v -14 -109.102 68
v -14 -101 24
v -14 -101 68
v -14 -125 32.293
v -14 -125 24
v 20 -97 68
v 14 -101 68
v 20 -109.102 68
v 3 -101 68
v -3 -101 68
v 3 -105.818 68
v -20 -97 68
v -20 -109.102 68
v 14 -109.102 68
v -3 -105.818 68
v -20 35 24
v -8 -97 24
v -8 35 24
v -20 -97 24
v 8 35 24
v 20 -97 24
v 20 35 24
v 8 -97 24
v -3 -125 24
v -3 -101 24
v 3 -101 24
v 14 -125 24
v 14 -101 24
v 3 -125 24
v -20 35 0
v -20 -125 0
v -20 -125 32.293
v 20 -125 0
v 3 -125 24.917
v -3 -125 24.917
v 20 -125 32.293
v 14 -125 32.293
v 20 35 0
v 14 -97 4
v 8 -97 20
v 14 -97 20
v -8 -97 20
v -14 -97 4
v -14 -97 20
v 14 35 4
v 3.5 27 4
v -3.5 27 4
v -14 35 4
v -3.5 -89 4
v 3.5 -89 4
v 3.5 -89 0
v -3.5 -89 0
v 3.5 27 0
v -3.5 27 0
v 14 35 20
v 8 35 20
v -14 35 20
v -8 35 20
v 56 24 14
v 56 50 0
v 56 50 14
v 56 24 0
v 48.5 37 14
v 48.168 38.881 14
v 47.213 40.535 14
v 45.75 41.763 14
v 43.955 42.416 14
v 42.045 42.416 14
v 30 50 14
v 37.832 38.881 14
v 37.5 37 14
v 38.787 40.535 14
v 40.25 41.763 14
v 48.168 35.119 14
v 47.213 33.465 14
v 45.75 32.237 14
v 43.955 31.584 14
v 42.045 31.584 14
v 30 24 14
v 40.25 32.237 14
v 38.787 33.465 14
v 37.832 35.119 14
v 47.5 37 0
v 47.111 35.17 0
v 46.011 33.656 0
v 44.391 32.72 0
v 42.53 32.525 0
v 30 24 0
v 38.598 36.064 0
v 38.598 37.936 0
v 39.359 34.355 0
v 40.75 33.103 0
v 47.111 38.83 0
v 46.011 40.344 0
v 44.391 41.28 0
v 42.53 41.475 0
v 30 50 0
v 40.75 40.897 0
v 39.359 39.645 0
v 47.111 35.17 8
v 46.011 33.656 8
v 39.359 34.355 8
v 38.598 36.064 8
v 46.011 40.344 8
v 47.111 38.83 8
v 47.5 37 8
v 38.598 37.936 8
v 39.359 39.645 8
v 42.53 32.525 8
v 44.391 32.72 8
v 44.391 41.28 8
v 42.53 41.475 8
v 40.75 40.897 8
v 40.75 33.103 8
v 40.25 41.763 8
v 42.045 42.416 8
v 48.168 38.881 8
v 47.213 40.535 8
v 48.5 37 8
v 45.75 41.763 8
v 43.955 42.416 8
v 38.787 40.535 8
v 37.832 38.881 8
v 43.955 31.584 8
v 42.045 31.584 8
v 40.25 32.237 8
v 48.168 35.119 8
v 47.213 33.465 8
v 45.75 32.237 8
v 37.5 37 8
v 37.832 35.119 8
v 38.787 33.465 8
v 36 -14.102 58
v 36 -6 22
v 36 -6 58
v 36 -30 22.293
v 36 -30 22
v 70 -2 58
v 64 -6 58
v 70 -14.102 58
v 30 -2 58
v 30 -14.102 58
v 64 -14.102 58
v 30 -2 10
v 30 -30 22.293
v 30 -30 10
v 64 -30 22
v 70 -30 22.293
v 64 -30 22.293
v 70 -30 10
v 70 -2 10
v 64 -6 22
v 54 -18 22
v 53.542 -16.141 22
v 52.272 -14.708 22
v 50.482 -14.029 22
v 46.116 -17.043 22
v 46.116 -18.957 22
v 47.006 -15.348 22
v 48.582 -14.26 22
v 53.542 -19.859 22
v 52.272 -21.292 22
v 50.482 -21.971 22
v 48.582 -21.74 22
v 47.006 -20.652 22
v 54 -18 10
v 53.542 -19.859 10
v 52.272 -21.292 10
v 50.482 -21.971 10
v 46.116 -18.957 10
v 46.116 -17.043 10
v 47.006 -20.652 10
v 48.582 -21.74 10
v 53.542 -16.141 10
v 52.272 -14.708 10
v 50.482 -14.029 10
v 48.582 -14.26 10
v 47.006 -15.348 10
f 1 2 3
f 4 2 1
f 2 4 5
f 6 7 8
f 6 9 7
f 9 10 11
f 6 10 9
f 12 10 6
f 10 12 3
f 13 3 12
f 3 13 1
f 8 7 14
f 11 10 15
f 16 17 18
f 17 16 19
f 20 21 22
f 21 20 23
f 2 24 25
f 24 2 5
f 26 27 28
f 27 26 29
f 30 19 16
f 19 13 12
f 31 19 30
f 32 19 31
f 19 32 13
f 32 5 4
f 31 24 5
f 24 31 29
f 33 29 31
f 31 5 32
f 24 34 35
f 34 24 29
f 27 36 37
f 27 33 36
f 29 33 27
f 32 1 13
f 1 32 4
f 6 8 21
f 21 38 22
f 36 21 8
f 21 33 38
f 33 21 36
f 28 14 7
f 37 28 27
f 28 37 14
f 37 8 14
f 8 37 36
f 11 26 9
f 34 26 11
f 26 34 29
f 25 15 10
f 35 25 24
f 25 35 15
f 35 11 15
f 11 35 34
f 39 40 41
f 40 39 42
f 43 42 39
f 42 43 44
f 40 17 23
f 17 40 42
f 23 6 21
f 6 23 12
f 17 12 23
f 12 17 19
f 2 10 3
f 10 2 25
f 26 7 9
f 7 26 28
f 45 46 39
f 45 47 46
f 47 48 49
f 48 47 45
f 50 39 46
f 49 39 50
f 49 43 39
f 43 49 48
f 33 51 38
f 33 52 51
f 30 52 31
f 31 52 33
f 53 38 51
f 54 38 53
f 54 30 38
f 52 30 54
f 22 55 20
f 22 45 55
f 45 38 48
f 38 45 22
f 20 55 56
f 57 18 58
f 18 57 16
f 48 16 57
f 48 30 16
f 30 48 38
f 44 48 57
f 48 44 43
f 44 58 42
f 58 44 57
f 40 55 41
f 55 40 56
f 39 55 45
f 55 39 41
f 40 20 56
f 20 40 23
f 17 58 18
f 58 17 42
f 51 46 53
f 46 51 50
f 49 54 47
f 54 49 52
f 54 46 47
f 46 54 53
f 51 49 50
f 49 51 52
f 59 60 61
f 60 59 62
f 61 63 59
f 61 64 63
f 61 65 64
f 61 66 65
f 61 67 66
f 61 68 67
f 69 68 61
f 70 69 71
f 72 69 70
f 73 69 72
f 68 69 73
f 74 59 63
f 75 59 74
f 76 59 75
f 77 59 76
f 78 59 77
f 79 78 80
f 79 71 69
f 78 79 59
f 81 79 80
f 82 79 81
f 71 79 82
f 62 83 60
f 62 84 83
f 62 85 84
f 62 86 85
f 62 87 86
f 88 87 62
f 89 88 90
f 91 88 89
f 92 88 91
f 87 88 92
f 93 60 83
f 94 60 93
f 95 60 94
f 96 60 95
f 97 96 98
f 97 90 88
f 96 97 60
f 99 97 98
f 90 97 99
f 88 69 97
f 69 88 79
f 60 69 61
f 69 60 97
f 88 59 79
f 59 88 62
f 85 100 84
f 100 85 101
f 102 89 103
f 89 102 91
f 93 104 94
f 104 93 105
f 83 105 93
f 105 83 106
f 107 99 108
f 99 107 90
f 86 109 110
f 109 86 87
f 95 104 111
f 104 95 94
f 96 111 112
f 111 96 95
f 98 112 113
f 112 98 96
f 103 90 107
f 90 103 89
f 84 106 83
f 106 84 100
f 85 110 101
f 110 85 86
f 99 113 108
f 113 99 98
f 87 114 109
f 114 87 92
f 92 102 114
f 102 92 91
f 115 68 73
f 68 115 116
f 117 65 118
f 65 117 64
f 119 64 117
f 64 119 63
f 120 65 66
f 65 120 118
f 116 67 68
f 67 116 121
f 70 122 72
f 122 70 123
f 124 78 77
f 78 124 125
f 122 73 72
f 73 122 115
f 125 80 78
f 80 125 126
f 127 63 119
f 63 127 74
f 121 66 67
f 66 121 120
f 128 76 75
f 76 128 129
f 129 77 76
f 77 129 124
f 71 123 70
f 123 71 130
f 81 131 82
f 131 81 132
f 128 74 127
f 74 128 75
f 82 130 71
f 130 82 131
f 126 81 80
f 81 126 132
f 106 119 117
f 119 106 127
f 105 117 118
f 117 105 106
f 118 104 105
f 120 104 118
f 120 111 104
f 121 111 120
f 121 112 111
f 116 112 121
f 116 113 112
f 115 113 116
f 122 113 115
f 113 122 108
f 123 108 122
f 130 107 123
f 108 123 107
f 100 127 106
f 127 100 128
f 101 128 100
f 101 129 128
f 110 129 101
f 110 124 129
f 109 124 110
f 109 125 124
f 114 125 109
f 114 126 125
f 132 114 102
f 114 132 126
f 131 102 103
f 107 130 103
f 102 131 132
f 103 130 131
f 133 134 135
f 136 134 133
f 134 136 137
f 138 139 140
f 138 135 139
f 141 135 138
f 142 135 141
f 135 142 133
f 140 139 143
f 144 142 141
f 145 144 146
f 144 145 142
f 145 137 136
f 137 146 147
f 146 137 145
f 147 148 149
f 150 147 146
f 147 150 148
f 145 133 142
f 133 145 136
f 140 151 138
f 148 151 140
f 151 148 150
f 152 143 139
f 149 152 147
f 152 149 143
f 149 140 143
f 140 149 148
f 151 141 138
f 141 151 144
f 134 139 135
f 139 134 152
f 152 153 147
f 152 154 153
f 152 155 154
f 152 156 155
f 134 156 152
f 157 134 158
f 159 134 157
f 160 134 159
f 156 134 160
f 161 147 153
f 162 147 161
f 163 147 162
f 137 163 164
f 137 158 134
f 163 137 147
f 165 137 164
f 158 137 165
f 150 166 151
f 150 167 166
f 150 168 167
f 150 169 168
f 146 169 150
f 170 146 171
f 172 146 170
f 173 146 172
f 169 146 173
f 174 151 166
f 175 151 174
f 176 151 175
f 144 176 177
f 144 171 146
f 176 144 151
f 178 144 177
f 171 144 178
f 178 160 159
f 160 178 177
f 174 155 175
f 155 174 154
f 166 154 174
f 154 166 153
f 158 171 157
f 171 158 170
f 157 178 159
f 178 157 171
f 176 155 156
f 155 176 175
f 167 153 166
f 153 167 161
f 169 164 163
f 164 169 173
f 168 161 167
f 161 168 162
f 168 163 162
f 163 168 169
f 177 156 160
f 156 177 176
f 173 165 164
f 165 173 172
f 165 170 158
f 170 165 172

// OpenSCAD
length = 160;
channel_thickness = 6;
channel_height = 16;
width = 40;
thickness = 4;
stop_height = 44;
support_depth = 20;

// calculated
plate_width = width - 2 - channel_thickness * 2;


translate([-20, -125, 0]) {
    difference() {
        union() {
            // base
            cube([width, length, thickness]);
            // sides
           translate([0, 0, thickness])
           cube([channel_thickness, length, channel_height]);
           translate([width-channel_thickness, 0, thickness])
           cube([channel_thickness, length, channel_height]);
            
            // channel tops
           translate([width - channel_thickness * 2, 0, channel_height+thickness])
           cube([channel_thickness * 2, length, thickness]);
           translate([0, 0, channel_height+thickness])
           cube([channel_thickness * 2, length, thickness]);
           
            // static-stop
            //   fill
            translate([0, 0, thickness]) {
                cube([width, support_depth+(thickness*2), channel_height+thickness]);
            }
            translate([0, 0, channel_height+thickness]) {
                //   side-supports
                translate([0, support_depth, thickness])
                cube([channel_thickness, channel_thickness, stop_height]);
                translate([width-channel_thickness, support_depth, thickness])
                cube([channel_thickness, channel_thickness, stop_height]);

                //    backing
                translate([0, support_depth + thickness, thickness])
                cube([width, thickness, stop_height]);
                //    legs
                difference() {
                    translate([0, 0, thickness])
                    cube([channel_thickness, support_depth, stop_height]);
                    rotate([-24, 0, 0])
                    translate([-1, -29, 0])
                    cube([channel_thickness * 2, support_depth+thickness, stop_height * 2]);
                }
                difference() {
                    translate([width-channel_thickness, 0, thickness])
                    cube([channel_thickness, support_depth, stop_height]);
                    rotate([-24, 0, 0])
                    translate([33, -29, 0])
                    cube([channel_thickness * 2, support_depth+thickness, stop_height * 2]);
                }
                //   center support
                difference() {
                    union() {
                        translate([(width/2) - (channel_thickness/2), support_depth, thickness])
                        cube([channel_thickness, channel_thickness, stop_height]);
                        translate([17, 0, thickness])
                        cube([channel_thickness, support_depth, stop_height]);
                    }
                    rotate([-24, 0, 0])
                    translate([(width/2) - (channel_thickness/2)-1, -26, 0])
                    cube([channel_thickness+2, support_depth + thickness, stop_height * 2]);
                }  
            }      
        }
        // screw slide
        translate([width/2 - 3.5, thickness*4 + support_depth, -1])
        cube([7, length-(thickness * 6 + support_depth), 8]);
    }
}


// plate
translate([30, 24, 0])
difference() {
    cube([plate_width, plate_width, channel_height-2]);
    translate([plate_width/2, plate_width/2, -1])
    cylinder(h=channel_height, d=9);
    translate([plate_width/2, plate_width/2, 8])
    cylinder(h=channel_height, d=11);
}




// adjustable stop
translate([30, -30, -14]) {    
    difference() {
        union() {
            translate([0, 0, channel_height+thickness*2])
            cube([width, support_depth+thickness*2, thickness*3]);
            translate([0, 0, channel_height+thickness * 2]) {
                //   side-supports
                translate([0, support_depth, thickness])
                cube([channel_thickness, channel_thickness, stop_height]);
                translate([width-channel_thickness, support_depth, thickness])
                cube([channel_thickness, channel_thickness, stop_height]);

                //    backing
                translate([0, support_depth + thickness, thickness])
                cube([width, thickness, stop_height]);
                //    legs
                difference() {
                    translate([0, 0, thickness])
                    cube([channel_thickness, support_depth, stop_height]);
                    rotate([-24, 0, 0])
                    translate([-1, -29, 0])
                    cube([channel_thickness * 2, support_depth+thickness, stop_height * 2]);
                }
                difference() {
                    translate([width-channel_thickness, 0, thickness])
                    cube([channel_thickness, support_depth, stop_height]);
                    rotate([-24, 0, 0])
                    translate([33, -29, 0])
                    cube([channel_thickness * 2, support_depth+thickness, stop_height * 2]);
                }  
            }
        }
        translate([width/2, (support_depth+thickness)/2, 0])
        cylinder(h=stop_height, d=8);
    }
}
    
